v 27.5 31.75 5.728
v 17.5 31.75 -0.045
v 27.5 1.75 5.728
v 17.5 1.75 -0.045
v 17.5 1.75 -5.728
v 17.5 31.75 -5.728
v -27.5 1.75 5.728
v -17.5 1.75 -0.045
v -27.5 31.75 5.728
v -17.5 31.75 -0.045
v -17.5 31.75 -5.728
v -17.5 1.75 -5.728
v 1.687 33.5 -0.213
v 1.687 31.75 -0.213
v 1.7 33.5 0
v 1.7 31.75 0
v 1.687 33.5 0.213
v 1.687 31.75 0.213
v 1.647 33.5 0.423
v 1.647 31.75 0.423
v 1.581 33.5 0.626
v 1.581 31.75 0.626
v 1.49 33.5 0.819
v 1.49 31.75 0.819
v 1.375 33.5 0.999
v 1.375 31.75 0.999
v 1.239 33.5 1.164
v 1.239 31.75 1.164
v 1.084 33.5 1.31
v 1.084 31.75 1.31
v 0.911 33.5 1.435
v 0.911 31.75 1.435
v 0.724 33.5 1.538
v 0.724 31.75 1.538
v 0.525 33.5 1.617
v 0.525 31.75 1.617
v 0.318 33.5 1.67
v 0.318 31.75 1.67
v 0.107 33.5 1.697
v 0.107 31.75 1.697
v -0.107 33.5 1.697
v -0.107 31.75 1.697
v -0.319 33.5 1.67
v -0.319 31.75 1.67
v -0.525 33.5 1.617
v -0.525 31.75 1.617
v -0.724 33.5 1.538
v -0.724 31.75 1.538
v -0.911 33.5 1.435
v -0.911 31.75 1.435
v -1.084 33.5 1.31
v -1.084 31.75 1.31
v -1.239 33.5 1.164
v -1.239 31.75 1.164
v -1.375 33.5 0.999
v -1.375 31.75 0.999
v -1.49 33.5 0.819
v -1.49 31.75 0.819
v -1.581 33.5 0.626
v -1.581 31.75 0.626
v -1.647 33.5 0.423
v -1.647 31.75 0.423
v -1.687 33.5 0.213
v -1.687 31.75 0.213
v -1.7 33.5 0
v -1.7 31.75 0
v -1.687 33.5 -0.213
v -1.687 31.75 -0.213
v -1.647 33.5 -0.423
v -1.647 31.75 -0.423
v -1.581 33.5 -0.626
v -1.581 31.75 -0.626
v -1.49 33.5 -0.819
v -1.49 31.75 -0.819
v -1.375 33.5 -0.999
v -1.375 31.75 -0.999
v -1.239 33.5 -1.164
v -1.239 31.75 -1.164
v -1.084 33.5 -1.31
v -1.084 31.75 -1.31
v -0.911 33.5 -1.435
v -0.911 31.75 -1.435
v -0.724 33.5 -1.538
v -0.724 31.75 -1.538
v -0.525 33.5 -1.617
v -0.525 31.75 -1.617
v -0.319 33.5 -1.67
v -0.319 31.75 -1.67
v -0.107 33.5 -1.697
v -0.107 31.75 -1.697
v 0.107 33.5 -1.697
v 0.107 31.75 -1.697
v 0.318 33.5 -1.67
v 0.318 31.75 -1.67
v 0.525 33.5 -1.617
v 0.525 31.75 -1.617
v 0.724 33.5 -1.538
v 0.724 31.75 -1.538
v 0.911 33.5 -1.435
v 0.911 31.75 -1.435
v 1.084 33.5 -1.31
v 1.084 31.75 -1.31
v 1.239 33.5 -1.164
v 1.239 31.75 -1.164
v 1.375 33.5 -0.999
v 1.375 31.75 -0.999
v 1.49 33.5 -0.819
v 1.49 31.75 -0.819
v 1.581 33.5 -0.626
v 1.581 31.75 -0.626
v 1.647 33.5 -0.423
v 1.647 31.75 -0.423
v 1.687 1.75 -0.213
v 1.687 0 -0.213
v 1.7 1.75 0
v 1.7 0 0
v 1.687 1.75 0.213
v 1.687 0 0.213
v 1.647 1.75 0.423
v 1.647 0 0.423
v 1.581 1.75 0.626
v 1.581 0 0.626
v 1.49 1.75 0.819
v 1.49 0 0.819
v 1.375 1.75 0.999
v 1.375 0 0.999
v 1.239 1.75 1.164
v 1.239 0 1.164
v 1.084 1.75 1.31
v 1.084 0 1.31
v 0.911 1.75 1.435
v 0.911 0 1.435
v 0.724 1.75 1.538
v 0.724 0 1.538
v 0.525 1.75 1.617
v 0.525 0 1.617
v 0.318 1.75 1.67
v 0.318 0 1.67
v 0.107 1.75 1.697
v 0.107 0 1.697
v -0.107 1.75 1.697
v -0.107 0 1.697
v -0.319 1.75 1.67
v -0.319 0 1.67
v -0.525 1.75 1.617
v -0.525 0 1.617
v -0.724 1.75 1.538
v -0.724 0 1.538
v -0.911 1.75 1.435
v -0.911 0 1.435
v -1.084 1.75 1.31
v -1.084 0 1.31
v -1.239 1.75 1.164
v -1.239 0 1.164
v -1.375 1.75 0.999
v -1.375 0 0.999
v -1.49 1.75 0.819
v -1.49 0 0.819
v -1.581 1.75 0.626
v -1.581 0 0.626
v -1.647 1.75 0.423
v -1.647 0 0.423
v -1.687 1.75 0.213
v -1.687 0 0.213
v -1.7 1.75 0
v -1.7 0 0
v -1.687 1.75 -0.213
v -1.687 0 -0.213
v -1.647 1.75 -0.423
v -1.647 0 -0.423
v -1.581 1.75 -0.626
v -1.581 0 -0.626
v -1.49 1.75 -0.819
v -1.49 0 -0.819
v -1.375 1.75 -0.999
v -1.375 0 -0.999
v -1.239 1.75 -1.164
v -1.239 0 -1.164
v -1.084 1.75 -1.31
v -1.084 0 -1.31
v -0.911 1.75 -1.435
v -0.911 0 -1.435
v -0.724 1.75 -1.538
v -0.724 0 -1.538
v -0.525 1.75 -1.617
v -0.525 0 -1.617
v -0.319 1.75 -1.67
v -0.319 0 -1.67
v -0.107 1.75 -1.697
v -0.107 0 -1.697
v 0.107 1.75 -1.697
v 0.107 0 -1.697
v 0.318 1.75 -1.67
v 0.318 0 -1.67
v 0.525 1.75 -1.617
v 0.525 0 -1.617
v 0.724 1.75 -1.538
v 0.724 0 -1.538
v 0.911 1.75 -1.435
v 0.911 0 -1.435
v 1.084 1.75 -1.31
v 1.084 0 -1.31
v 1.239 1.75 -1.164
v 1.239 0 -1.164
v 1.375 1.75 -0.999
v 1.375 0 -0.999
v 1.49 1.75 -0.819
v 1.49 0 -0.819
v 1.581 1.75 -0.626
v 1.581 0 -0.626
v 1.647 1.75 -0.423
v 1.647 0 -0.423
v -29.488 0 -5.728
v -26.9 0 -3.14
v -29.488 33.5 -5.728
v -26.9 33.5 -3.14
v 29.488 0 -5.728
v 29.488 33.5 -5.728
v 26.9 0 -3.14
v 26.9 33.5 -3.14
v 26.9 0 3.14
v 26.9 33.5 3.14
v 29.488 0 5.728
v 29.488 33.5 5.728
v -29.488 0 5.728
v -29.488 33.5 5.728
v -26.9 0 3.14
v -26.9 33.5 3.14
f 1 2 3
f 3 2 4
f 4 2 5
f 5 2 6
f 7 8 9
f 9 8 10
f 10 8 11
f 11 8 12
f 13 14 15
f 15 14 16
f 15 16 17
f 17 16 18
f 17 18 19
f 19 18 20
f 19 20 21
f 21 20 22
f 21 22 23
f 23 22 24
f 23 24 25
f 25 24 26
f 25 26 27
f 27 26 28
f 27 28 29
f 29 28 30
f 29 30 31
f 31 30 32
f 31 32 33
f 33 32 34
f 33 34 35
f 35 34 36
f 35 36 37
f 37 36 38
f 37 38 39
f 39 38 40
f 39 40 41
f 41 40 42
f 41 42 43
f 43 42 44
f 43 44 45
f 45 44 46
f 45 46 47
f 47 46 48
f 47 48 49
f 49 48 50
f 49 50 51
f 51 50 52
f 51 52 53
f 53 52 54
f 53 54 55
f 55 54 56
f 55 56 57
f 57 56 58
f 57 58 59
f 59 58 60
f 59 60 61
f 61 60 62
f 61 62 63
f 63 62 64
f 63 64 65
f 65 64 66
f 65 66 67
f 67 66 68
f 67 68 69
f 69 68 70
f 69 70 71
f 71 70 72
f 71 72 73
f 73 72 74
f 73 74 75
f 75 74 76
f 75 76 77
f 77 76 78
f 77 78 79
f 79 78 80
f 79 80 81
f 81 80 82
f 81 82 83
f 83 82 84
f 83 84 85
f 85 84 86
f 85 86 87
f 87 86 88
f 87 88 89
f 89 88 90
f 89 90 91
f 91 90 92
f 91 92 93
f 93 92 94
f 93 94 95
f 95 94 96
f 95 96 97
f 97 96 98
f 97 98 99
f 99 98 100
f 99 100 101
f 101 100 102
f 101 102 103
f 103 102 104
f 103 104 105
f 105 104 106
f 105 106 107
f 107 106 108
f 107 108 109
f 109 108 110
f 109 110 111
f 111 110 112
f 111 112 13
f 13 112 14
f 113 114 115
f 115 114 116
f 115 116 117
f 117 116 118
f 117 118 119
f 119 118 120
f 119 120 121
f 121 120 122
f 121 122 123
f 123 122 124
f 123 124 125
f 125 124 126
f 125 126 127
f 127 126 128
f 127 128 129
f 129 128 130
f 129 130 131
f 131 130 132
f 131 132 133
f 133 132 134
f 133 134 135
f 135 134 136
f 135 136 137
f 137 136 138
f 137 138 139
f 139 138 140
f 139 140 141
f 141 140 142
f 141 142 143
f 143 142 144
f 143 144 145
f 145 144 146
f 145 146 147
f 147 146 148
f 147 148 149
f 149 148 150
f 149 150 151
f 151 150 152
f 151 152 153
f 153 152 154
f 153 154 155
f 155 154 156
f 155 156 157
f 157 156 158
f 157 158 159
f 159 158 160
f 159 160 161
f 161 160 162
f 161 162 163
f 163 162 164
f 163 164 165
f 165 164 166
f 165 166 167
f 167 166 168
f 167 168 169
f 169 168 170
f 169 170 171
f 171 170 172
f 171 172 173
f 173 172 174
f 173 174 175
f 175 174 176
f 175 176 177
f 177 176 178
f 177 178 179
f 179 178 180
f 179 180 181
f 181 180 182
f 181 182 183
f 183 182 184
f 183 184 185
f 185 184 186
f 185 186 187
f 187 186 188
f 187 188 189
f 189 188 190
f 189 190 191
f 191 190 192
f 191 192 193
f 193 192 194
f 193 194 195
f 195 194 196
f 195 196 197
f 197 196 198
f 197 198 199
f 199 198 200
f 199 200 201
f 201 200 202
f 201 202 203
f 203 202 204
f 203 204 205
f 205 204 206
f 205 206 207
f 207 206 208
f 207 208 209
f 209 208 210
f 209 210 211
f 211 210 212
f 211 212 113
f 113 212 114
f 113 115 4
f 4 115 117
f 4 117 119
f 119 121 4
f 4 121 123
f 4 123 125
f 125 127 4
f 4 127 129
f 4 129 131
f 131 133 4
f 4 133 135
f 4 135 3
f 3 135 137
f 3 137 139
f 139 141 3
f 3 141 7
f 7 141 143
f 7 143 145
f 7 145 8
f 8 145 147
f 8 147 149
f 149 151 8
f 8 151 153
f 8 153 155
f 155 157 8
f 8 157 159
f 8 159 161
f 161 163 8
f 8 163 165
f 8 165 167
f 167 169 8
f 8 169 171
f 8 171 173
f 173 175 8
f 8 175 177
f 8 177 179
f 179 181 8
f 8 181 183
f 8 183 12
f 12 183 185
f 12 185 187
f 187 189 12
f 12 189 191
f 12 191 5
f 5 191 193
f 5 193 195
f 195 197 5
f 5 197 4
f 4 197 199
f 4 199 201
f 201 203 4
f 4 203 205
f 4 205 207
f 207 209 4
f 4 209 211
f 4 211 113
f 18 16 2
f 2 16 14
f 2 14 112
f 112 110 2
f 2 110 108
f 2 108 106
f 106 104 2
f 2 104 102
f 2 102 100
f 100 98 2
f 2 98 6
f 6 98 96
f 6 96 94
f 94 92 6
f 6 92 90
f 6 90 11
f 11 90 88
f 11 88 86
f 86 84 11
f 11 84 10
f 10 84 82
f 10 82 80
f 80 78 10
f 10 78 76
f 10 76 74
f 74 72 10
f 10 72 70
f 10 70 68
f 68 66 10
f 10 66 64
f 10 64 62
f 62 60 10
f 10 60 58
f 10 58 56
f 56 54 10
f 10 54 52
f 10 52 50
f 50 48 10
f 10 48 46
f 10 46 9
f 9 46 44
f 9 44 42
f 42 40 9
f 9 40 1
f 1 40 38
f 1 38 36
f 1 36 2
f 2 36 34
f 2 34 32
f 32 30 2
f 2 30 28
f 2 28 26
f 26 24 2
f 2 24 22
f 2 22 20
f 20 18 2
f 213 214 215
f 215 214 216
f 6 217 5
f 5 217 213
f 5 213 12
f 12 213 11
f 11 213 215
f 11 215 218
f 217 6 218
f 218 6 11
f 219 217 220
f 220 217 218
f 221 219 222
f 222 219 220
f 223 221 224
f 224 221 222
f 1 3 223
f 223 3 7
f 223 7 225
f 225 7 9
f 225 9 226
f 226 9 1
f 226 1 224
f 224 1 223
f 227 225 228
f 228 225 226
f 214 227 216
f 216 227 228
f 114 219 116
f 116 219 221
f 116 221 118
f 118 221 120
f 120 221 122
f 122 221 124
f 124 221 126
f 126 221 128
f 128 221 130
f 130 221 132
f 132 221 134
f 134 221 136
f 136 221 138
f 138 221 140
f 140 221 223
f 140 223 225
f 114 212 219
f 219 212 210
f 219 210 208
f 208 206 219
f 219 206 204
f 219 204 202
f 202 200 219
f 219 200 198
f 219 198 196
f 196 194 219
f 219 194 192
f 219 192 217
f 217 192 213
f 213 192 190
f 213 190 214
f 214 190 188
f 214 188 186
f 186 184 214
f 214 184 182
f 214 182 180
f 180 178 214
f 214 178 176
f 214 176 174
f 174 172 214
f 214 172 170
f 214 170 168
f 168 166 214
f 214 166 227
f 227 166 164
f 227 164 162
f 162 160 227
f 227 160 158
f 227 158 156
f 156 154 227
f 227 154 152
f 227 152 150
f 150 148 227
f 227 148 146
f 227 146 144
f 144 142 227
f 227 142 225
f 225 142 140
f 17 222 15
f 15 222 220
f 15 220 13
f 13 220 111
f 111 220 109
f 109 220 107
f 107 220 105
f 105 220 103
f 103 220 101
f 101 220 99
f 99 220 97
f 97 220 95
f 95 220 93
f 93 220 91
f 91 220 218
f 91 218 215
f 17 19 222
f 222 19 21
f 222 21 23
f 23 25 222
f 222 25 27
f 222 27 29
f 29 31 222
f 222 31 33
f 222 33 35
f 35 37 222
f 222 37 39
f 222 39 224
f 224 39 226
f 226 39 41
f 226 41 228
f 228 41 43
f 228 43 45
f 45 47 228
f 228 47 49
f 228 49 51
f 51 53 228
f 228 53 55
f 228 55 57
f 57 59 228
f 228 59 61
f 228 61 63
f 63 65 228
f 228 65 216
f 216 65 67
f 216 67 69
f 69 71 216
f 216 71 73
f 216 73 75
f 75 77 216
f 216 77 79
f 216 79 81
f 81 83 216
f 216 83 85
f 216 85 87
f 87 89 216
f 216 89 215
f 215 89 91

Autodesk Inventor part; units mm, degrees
ref_plane "YZ Plane" through (0, 0, 0) normal (1, 0, 0) x (0, 1, 0)
ref_plane "XZ Plane" through (0, 0, 0) normal (0, 1, 0) x (-1, 0, 0)
ref_plane "XY Plane" through (0, 0, 0) normal (0, 0, 1) x (1, 0, 0)
sketch "Sketch1" plane through (0, 0, 0) normal (0, 1, 0) x (-1, 0, 0)
  line L0 (41.2832, 0) -> (-41.2832, 0) construction
  line L1 (0, -8.0192) -> (0, 8.0192) construction
  line L2 (26.9, 0) -> (26.9, -3.14)
  line L3 (26.9, -3.14) -> (29.488, -5.728)
  line L4 (29.488, -5.728) -> (0, -5.728)
  line L5 (26.9, 0) -> (26.9, 3.14)
  line L6 (26.9, 3.14) -> (29.488, 5.728)
  line L7 (29.488, 5.728) -> (0, 5.728)
  line L8 (-26.9, 0) -> (-26.9, -3.14)
  line L9 (-26.9, -3.14) -> (-29.488, -5.728)
  line L10 (-29.488, -5.728) -> (0, -5.728)
  line L11 (-26.9, 0) -> (-26.9, 3.14)
  line L12 (-26.9, 3.14) -> (-29.488, 5.728)
  line L13 (-29.488, 5.728) -> (0, 5.728)
  point P0 (0, 0)
  dimension "d0" = 26.9
  dimension "d1" = 3.14
  dimension "d2" = 3.66
  dimension "d3" = 135
extrude "Extrusion1" add sketch "Sketch1" along normal blind 33.5
sketch "Sketch2" plane through (-29.488, 0, 5.728) normal (0, 0, 1) x (1, 0, 0)
  line L0 (58.976, 0) -> (0, 0) construction
  line L1 (58.976, 0) -> (58.976, 33.5) construction
  line L2 (0, 33.5) -> (58.976, 33.5) construction
  line L3 (0, 0) -> (0, 33.5) construction
  line L4 (29.488, -6.8) -> (29.488, 40.8) construction
  line L5 (46.988, 1.75) -> (11.988, 1.75)
  line L6 (11.988, 1.75) -> (11.988, 31.75)
  line L7 (11.988, 31.75) -> (46.988, 31.75)
  line L8 (46.988, 31.75) -> (46.988, 1.75)
  line L9 (46.988, 1.75) -> (11.988, 31.75) construction
  line L10 (11.988, 1.75) -> (46.988, 31.75) construction
  point P0 (29.488, 16.75)
  dimension "d16" = 30
  dimension "d17" = 35
  dimension "d18" = 16.75
extrude "Extrusion2" cut sketch "Sketch2" against normal through all
sketch "Sketch3" plane through (0, 33.5, 0) normal (0, 1, 0) x (1, 0, 0)
  line L0 (-26.9, 3.14) -> (-26.9, -3.14) construction
  line L1 (-26.9, -3.14) -> (-29.488, -5.728) construction
  line L2 (-29.488, -5.728) -> (29.488, -5.728) construction
  line L3 (29.488, -5.728) -> (26.9, -3.14) construction
  line L4 (26.9, -3.14) -> (26.9, 3.14) construction
  line L5 (26.9, 3.14) -> (29.488, 5.728) construction
  line L6 (29.488, 5.728) -> (-29.488, 5.728) construction
  line L7 (-29.488, 5.728) -> (-26.9, 3.14) construction
  circle A0 centre (0, 0) radius 1.7
  dimension "d10" = 3.4
extrude "Extrusion3" cut sketch "Sketch3" against normal through all
ref_plane "Work Plane1" through (0, 29.5, 5.728) normal (0, -1, 0) x (1, 0, 0)
sketch "Sketch4" plane through (0, 29.5, 5.728) normal (0, -1, 0) x (1, 0, 0)
  circle A0 centre (0, -5.728) radius 1.7 construction
  line L0 (-26.9, -8.868) -> (-26.9, -2.588) construction
  line L1 (-26.9, -2.588) -> (-29.488, 0) construction
  line L2 (-29.488, 0) -> (29.488, 0) construction
  line L3 (29.488, 0) -> (26.9, -2.588) construction
  line L4 (26.9, -2.588) -> (26.9, -8.868) construction
  line L5 (26.9, -8.868) -> (29.488, -11.456) construction
  line L6 (29.488, -11.456) -> (-29.488, -11.456) construction
  line L7 (-29.488, -11.456) -> (-26.9, -8.868) construction
  line L8 (12.5, 0) -> (12.5, -11.456) construction
  line L9 (-12.5, 0) -> (-12.5, -11.456) construction
  line L10 (0, -5.728) -> (21.3772, 0)
  line L11 (0, -5.728) -> (22.1313, -5.728) construction
  line L12 (0, -13.7472) -> (0, 2.2912) construction
  line L13 (0, -5.728) -> (-21.3772, 0)
  line L14 (-21.3772, 0) -> (21.3772, 0)
  line L15 (29.488, 0) -> (-29.488, 0) construction
  dimension "d13" = 15
extrude "Extrusion4" [suppressed]
chamfer "Chamfer1" distance 10 angle 30 2 edges at (-17.5, 16.75, 5.728) (17.5, 16.75, 5.728) measured on face at (25.492, 11.75, 5.728)
equation "\"d18\" = 0.5 * d4"
equation "\"d4\" = 33.5"
